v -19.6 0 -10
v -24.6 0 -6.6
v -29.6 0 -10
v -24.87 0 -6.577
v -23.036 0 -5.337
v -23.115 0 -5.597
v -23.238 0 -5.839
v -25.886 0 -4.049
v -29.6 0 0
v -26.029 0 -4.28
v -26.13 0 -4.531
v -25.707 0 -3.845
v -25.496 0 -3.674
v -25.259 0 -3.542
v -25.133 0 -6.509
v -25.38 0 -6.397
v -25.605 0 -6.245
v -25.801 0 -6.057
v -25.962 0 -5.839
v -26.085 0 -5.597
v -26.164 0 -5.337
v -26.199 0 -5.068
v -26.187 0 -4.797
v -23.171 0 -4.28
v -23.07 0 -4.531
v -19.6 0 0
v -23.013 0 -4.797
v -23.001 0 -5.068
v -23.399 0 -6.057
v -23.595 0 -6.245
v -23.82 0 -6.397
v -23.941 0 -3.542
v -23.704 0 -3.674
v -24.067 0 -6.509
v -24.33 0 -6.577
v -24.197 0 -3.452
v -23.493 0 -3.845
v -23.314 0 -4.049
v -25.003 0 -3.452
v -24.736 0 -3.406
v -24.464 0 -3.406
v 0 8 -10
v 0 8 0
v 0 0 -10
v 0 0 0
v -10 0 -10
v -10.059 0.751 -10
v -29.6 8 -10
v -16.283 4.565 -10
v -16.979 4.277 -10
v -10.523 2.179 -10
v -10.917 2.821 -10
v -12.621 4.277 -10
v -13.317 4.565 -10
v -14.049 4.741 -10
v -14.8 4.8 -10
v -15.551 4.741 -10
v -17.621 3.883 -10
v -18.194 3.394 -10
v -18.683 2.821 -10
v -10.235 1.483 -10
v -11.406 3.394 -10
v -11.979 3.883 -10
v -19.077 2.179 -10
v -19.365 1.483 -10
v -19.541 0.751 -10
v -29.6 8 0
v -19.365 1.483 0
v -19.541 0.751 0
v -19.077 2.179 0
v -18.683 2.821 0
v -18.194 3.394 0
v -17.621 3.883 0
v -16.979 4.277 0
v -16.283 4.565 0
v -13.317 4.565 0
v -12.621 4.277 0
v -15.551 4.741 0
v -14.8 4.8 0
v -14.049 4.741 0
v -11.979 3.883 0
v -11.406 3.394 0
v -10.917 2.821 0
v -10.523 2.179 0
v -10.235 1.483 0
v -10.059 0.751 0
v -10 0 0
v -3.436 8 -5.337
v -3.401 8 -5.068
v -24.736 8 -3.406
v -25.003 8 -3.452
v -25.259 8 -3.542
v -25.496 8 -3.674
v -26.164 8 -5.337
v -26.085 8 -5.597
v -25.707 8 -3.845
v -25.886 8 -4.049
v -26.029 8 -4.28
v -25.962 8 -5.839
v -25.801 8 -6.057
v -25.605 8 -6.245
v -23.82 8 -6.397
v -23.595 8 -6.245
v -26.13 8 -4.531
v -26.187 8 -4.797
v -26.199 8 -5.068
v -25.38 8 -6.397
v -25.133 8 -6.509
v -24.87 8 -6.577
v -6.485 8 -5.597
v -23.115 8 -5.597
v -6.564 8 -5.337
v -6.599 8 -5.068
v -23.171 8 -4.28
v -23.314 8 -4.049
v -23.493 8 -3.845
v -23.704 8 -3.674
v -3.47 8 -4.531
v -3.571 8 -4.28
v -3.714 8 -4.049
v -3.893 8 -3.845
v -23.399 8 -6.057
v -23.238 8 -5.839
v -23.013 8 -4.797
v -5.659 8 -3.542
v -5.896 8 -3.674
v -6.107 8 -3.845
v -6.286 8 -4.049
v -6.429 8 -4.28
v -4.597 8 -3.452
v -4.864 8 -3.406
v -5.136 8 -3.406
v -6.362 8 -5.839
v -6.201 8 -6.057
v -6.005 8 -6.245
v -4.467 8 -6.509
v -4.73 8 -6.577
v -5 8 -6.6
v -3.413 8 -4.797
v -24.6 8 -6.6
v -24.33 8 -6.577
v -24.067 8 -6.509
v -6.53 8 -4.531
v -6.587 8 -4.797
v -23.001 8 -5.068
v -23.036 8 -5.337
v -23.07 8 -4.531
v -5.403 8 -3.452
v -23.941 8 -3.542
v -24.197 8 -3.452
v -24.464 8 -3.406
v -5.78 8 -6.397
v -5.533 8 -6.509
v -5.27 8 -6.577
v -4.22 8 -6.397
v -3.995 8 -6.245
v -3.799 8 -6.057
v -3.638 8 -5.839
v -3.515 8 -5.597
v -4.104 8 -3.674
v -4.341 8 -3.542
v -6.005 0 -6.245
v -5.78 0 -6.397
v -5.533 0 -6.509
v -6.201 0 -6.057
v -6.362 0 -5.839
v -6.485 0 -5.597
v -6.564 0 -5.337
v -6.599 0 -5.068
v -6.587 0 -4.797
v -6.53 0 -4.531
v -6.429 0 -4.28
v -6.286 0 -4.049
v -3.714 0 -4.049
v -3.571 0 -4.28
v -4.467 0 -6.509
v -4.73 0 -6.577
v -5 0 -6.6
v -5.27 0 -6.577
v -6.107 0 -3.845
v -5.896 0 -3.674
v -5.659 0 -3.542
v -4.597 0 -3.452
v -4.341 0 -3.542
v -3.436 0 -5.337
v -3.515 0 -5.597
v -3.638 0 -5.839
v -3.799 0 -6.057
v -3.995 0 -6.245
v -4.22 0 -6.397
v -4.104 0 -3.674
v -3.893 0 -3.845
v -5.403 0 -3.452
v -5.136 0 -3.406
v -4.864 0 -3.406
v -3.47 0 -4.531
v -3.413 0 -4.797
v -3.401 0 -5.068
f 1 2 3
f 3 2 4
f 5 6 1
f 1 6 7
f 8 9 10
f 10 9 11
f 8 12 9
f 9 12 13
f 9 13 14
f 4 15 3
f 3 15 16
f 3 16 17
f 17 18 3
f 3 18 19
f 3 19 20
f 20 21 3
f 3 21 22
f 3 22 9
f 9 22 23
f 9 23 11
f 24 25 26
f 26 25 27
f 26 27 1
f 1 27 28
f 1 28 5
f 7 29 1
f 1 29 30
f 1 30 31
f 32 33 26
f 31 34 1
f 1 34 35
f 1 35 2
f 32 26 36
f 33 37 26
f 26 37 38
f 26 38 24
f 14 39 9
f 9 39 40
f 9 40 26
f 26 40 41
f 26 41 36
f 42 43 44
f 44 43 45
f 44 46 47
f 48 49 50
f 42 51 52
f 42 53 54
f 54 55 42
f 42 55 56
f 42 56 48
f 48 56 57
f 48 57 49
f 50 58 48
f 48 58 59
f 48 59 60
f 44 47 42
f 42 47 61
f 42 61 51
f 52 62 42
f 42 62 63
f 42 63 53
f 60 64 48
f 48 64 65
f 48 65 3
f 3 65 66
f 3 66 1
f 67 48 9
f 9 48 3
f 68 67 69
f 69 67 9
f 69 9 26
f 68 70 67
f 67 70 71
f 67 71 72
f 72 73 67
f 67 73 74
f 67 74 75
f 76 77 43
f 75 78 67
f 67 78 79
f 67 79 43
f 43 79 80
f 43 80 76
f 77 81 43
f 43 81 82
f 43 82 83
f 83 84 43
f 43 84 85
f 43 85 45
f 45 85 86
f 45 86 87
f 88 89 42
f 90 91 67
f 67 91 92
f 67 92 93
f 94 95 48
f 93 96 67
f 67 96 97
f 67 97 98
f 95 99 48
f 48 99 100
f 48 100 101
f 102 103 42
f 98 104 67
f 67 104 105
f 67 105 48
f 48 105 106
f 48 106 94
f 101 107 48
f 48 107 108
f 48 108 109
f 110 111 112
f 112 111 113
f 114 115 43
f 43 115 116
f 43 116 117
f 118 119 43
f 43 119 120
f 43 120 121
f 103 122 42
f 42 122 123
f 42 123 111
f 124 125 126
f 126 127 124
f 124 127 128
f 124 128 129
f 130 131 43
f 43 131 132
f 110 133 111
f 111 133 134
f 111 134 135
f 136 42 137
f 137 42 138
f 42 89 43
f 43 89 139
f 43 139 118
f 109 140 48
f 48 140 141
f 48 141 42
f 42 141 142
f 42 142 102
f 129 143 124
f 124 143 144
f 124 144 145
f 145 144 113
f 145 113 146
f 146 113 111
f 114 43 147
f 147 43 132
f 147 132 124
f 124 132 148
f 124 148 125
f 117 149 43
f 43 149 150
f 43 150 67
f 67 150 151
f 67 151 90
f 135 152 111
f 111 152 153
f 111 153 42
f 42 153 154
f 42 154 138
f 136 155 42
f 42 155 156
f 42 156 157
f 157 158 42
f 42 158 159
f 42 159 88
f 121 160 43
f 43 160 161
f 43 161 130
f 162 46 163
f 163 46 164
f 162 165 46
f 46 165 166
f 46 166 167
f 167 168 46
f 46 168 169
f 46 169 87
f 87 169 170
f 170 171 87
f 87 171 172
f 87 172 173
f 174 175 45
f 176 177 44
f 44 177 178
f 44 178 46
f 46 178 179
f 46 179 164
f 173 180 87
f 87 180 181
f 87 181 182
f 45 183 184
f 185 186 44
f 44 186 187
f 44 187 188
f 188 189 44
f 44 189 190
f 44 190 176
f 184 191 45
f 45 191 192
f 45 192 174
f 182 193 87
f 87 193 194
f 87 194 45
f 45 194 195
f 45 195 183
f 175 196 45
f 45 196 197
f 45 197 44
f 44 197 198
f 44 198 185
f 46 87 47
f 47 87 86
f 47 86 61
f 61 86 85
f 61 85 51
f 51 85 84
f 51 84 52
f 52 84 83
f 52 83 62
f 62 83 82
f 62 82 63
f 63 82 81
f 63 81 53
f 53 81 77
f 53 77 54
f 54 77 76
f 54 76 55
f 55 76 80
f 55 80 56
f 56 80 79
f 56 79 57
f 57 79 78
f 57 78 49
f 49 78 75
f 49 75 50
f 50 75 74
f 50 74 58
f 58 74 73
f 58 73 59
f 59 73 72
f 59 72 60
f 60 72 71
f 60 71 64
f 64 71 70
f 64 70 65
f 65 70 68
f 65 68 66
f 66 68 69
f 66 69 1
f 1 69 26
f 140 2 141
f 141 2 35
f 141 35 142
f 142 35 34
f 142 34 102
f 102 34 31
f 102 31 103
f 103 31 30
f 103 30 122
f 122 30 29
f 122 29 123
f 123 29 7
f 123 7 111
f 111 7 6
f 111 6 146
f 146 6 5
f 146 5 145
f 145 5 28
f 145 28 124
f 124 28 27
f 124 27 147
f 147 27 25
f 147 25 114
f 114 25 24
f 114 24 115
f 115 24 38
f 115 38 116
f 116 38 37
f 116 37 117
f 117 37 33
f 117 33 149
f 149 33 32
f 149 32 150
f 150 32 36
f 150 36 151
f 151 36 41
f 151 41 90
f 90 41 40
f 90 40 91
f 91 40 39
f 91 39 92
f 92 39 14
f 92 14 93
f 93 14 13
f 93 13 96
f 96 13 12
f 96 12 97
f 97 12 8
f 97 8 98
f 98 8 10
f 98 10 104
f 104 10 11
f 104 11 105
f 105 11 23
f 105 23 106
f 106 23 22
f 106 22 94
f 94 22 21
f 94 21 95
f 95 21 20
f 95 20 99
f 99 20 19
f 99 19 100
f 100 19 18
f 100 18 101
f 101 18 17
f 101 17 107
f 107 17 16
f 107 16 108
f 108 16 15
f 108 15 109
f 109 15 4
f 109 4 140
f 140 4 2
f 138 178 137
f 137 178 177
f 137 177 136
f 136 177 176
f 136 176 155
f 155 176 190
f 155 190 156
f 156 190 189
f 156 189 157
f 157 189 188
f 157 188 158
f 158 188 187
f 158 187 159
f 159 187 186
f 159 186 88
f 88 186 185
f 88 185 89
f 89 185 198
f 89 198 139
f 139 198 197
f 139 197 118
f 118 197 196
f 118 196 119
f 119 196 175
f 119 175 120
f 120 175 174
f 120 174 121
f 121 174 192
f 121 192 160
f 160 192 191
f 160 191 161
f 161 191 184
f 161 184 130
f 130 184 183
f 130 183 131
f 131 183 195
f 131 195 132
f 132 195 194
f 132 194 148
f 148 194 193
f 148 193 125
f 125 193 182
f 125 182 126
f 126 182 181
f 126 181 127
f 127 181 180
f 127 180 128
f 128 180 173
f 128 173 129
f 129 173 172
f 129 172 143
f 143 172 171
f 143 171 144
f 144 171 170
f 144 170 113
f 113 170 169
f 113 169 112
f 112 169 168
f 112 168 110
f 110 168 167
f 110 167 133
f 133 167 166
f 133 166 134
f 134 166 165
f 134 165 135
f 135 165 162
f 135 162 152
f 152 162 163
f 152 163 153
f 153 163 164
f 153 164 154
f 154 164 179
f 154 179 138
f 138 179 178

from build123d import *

# Parameters (mm, degrees)
SKETCH1_W           = 29.6
SKETCH1_H           = 10
BOSS_EXTRUDE1_DEPTH = 8
SKETCH2_R           = 4.8
CUT_EXTRUDE1_DEPTH  = 10
SKETCH4_R           = 1.6
CUT_EXTRUDE2_DEPTH  = 8
SKETCH7_R           = 1.6
CUT_EXTRUDE3_DEPTH  = 8


with BuildPart() as part:
    # Sketch1 → Boss-Extrude1 (new body)
    with BuildSketch(Plane(origin=(0, 0, 0), x_dir=(1, 0, 0), z_dir=(0, 1, 0))):
        with Locations((-14.8, 5)):
            Rectangle(SKETCH1_W, SKETCH1_H)
    extrude(amount=BOSS_EXTRUDE1_DEPTH)

    # Sketch2 → Cut-Extrude1 (cut)
    with BuildSketch(Plane.XY):
        with Locations((-14.8, 0)):
            Circle(SKETCH2_R)
    extrude(amount=-CUT_EXTRUDE1_DEPTH, mode=Mode.SUBTRACT)

    # Sketch4 → Cut-Extrude2 (cut)
    with BuildSketch(Plane.XZ):
        with Locations((-24.6, -5)):
            Circle(SKETCH4_R)
    extrude(amount=-CUT_EXTRUDE2_DEPTH, mode=Mode.SUBTRACT)

    # Sketch7 → Cut-Extrude3 (cut)
    with BuildSketch(Plane.XZ):
        with Locations((-5, -5)):
            Circle(SKETCH7_R)
    extrude(amount=-CUT_EXTRUDE3_DEPTH, mode=Mode.SUBTRACT)


solid = part.part
